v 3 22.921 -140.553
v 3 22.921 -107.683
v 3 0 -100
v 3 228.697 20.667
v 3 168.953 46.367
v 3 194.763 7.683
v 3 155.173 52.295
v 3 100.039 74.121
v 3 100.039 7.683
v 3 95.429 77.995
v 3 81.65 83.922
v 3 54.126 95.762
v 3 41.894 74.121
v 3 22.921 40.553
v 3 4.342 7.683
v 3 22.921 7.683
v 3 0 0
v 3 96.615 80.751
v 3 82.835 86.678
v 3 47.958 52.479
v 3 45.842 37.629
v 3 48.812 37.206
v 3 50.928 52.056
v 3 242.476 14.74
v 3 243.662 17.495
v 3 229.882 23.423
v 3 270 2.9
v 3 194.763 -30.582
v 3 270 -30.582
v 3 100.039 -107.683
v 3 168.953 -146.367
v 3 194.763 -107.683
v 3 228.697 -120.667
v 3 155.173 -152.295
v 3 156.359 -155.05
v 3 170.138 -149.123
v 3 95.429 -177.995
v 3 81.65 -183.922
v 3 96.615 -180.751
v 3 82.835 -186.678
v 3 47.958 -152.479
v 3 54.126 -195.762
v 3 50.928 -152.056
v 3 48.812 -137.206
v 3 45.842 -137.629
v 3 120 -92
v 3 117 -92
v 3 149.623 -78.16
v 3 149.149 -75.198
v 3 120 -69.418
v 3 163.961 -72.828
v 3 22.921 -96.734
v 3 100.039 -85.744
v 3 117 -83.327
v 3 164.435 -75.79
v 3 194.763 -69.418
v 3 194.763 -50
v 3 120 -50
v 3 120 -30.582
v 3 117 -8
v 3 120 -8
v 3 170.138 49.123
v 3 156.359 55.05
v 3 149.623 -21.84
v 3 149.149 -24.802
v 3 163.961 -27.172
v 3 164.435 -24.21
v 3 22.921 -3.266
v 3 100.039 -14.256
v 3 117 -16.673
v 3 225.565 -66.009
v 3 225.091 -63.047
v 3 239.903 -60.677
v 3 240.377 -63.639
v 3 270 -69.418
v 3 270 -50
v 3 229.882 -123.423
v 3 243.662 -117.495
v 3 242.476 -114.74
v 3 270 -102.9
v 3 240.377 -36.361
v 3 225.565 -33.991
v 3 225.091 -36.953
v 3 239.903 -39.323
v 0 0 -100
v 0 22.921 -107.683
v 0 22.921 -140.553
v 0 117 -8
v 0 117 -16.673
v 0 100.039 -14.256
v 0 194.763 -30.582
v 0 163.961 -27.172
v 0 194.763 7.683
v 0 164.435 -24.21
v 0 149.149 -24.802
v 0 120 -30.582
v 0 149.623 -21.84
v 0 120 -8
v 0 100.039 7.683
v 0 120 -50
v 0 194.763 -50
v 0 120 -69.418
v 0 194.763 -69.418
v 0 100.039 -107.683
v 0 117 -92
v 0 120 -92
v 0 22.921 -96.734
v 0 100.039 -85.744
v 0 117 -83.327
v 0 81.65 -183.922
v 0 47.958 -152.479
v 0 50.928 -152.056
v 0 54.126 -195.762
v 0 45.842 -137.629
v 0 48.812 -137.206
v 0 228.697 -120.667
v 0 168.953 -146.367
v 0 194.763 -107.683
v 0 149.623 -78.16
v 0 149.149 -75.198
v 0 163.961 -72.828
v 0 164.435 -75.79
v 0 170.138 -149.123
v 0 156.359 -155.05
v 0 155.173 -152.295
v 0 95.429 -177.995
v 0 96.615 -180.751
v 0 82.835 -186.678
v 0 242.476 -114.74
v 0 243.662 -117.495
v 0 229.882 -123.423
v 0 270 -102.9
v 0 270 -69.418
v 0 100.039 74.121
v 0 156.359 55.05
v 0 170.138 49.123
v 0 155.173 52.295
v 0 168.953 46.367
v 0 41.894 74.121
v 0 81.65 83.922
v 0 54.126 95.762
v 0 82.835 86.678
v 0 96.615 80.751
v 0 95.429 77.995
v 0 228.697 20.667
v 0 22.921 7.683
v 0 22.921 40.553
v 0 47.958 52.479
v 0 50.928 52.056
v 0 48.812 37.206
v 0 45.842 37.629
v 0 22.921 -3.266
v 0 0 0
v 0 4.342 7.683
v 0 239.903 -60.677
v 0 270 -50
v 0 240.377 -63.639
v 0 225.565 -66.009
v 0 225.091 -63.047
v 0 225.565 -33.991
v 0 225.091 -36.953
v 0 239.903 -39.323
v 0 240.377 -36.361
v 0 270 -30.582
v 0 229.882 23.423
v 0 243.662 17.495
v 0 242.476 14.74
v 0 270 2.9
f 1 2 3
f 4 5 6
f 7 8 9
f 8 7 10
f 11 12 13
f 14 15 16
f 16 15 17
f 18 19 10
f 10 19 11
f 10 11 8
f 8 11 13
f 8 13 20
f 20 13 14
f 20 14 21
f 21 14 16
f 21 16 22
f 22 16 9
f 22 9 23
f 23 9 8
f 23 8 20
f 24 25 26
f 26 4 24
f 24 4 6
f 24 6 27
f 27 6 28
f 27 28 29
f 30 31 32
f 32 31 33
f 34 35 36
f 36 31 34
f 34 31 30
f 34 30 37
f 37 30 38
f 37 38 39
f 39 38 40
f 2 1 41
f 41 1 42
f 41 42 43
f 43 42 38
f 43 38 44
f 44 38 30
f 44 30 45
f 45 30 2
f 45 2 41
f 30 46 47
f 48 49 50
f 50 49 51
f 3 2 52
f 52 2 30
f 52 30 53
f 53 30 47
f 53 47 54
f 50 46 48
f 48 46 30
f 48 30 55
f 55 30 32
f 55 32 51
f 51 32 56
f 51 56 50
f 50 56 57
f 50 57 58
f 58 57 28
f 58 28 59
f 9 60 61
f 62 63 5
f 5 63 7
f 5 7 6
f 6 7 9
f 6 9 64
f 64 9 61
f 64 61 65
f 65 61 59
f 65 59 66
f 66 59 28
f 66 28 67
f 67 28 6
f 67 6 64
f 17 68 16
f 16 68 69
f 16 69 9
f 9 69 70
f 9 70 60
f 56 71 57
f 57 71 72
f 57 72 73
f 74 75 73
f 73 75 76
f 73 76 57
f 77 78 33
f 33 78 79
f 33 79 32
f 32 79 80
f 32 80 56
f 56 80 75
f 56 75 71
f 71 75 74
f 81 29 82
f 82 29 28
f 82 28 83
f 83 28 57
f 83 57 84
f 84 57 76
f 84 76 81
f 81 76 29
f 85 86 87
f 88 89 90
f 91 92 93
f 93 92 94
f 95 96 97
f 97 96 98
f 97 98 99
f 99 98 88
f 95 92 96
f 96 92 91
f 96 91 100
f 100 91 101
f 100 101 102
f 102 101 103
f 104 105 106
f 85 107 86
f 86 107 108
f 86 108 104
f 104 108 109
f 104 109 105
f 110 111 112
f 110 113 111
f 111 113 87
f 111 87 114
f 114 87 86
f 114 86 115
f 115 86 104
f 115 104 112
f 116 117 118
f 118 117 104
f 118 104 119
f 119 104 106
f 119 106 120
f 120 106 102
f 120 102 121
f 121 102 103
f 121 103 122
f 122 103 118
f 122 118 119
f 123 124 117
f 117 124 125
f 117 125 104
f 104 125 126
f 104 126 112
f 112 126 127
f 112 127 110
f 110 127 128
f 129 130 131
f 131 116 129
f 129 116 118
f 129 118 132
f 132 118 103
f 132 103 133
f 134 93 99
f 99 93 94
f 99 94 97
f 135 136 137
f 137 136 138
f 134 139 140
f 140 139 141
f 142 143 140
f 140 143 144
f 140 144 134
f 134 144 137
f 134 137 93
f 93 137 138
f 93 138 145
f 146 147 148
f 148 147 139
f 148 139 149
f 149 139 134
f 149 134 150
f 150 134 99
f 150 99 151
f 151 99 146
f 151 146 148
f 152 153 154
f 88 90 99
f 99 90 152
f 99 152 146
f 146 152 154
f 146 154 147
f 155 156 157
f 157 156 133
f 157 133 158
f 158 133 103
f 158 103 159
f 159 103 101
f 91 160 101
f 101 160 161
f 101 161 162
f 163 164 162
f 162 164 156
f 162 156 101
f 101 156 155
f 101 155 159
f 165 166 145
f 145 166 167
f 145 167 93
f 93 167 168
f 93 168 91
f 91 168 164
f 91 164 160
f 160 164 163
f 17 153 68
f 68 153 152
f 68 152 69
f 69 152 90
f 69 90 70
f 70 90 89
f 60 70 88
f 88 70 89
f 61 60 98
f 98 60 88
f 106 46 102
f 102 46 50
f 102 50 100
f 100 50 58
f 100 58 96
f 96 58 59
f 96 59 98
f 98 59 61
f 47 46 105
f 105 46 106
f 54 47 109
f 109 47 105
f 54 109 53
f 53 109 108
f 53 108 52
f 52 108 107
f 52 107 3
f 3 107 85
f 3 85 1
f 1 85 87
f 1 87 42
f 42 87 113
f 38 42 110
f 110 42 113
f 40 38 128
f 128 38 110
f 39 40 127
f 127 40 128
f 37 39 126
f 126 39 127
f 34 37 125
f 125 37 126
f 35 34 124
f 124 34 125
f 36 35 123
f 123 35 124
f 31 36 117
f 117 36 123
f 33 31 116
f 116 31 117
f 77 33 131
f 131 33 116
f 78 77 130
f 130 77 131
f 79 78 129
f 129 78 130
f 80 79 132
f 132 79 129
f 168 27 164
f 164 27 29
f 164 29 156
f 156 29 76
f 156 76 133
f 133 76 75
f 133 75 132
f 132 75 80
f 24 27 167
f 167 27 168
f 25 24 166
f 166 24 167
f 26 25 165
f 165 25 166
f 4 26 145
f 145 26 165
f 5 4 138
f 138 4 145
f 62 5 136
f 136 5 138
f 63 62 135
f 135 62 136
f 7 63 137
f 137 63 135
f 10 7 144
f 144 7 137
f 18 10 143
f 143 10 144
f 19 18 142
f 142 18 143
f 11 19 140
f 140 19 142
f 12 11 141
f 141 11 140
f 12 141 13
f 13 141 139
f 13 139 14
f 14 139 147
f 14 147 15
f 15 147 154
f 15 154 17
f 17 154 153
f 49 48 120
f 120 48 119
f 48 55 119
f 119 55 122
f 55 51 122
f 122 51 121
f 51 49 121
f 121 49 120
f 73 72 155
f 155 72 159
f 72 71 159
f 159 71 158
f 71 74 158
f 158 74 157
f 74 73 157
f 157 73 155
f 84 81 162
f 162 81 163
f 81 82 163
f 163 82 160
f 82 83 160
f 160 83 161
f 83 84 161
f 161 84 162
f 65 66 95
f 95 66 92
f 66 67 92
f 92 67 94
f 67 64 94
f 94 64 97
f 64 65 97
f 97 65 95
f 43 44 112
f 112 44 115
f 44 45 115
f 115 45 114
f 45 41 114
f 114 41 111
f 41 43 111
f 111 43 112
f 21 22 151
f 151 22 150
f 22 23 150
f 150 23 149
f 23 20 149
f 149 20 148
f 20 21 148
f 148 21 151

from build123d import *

# Parameters (mm, degrees)
BOSS_EXTRUDE1_DEPTH = 3


with BuildPart() as part:
    # Sketch2 → Boss-Extrude1 (new body)
    with BuildSketch(Plane(origin=(0, 0, 0), x_dir=(0, 0, -1), z_dir=(1, 0, 0))):
        Polygon((0, 0), (-95.762049044, 54.126056228), (-83.922091974, 81.649962502), (-86.677929554, 82.835440985), (-80.750537142, 96.614628885), (-77.994699562, 95.429150402), (-52.294504689, 155.173434164), (-55.050342269, 156.358912646), (-49.122949857, 170.138100547), (-46.367112277, 168.952622064), (-20.666917403, 228.696905826), (-23.422754983, 229.882384308), (-17.495362571, 243.661572208), (-14.739524991, 242.476093726), (-2.899567921, 270), (102.899567921, 270), (114.739524991, 242.476093726), (117.495362571, 243.661572208), (123.422754983, 229.882384308), (120.666917403, 228.696905826), (146.367112277, 168.952622064), (149.122949857, 170.138100547), (155.050342269, 156.358912646), (152.294504689, 155.173434164), (177.994699562, 95.429150402), (180.750537142, 96.614628885), (186.677929554, 82.835440985), (183.922091974, 81.649962502), (195.762049044, 54.126056228), (100, 0), (83.327078723, 117), (92, 117), (92, 120), (80, 120), (20, 120), (8, 120), (8, 117), (16.672921277, 117), align=None)
        Polygon((24.210004629, 164.434828436), (21.840147112, 149.623218958), (24.802469008, 149.149247454), (27.172326524, 163.960856933), align=None, mode=Mode.SUBTRACT)
        Polygon((36.360717046, 240.376781042), (33.990859529, 225.565171564), (36.953181425, 225.09120006), (39.323038941, 239.902809539), align=None, mode=Mode.SUBTRACT)
        Polygon((75.197530992, 149.149247454), (72.827673476, 163.960856933), (75.789995371, 164.434828436), (78.159852888, 149.623218958), align=None, mode=Mode.SUBTRACT)
        Polygon((63.046818575, 225.09120006), (66.009140471, 225.565171564), (63.639282954, 240.376781042), (60.676961059, 239.902809539), align=None, mode=Mode.SUBTRACT)
        Polygon((-52.479172452, 47.958090467), (-37.629195925, 45.841915342), (-37.2059609, 48.811910647), (-52.055937427, 50.928085772), align=None, mode=Mode.SUBTRACT)
        Polygon((137.2059609, 48.811910647), (137.629195925, 45.841915342), (152.479172452, 47.958090467), (152.055937427, 50.928085772), align=None, mode=Mode.SUBTRACT)
    extrude(amount=BOSS_EXTRUDE1_DEPTH)


solid = part.part
